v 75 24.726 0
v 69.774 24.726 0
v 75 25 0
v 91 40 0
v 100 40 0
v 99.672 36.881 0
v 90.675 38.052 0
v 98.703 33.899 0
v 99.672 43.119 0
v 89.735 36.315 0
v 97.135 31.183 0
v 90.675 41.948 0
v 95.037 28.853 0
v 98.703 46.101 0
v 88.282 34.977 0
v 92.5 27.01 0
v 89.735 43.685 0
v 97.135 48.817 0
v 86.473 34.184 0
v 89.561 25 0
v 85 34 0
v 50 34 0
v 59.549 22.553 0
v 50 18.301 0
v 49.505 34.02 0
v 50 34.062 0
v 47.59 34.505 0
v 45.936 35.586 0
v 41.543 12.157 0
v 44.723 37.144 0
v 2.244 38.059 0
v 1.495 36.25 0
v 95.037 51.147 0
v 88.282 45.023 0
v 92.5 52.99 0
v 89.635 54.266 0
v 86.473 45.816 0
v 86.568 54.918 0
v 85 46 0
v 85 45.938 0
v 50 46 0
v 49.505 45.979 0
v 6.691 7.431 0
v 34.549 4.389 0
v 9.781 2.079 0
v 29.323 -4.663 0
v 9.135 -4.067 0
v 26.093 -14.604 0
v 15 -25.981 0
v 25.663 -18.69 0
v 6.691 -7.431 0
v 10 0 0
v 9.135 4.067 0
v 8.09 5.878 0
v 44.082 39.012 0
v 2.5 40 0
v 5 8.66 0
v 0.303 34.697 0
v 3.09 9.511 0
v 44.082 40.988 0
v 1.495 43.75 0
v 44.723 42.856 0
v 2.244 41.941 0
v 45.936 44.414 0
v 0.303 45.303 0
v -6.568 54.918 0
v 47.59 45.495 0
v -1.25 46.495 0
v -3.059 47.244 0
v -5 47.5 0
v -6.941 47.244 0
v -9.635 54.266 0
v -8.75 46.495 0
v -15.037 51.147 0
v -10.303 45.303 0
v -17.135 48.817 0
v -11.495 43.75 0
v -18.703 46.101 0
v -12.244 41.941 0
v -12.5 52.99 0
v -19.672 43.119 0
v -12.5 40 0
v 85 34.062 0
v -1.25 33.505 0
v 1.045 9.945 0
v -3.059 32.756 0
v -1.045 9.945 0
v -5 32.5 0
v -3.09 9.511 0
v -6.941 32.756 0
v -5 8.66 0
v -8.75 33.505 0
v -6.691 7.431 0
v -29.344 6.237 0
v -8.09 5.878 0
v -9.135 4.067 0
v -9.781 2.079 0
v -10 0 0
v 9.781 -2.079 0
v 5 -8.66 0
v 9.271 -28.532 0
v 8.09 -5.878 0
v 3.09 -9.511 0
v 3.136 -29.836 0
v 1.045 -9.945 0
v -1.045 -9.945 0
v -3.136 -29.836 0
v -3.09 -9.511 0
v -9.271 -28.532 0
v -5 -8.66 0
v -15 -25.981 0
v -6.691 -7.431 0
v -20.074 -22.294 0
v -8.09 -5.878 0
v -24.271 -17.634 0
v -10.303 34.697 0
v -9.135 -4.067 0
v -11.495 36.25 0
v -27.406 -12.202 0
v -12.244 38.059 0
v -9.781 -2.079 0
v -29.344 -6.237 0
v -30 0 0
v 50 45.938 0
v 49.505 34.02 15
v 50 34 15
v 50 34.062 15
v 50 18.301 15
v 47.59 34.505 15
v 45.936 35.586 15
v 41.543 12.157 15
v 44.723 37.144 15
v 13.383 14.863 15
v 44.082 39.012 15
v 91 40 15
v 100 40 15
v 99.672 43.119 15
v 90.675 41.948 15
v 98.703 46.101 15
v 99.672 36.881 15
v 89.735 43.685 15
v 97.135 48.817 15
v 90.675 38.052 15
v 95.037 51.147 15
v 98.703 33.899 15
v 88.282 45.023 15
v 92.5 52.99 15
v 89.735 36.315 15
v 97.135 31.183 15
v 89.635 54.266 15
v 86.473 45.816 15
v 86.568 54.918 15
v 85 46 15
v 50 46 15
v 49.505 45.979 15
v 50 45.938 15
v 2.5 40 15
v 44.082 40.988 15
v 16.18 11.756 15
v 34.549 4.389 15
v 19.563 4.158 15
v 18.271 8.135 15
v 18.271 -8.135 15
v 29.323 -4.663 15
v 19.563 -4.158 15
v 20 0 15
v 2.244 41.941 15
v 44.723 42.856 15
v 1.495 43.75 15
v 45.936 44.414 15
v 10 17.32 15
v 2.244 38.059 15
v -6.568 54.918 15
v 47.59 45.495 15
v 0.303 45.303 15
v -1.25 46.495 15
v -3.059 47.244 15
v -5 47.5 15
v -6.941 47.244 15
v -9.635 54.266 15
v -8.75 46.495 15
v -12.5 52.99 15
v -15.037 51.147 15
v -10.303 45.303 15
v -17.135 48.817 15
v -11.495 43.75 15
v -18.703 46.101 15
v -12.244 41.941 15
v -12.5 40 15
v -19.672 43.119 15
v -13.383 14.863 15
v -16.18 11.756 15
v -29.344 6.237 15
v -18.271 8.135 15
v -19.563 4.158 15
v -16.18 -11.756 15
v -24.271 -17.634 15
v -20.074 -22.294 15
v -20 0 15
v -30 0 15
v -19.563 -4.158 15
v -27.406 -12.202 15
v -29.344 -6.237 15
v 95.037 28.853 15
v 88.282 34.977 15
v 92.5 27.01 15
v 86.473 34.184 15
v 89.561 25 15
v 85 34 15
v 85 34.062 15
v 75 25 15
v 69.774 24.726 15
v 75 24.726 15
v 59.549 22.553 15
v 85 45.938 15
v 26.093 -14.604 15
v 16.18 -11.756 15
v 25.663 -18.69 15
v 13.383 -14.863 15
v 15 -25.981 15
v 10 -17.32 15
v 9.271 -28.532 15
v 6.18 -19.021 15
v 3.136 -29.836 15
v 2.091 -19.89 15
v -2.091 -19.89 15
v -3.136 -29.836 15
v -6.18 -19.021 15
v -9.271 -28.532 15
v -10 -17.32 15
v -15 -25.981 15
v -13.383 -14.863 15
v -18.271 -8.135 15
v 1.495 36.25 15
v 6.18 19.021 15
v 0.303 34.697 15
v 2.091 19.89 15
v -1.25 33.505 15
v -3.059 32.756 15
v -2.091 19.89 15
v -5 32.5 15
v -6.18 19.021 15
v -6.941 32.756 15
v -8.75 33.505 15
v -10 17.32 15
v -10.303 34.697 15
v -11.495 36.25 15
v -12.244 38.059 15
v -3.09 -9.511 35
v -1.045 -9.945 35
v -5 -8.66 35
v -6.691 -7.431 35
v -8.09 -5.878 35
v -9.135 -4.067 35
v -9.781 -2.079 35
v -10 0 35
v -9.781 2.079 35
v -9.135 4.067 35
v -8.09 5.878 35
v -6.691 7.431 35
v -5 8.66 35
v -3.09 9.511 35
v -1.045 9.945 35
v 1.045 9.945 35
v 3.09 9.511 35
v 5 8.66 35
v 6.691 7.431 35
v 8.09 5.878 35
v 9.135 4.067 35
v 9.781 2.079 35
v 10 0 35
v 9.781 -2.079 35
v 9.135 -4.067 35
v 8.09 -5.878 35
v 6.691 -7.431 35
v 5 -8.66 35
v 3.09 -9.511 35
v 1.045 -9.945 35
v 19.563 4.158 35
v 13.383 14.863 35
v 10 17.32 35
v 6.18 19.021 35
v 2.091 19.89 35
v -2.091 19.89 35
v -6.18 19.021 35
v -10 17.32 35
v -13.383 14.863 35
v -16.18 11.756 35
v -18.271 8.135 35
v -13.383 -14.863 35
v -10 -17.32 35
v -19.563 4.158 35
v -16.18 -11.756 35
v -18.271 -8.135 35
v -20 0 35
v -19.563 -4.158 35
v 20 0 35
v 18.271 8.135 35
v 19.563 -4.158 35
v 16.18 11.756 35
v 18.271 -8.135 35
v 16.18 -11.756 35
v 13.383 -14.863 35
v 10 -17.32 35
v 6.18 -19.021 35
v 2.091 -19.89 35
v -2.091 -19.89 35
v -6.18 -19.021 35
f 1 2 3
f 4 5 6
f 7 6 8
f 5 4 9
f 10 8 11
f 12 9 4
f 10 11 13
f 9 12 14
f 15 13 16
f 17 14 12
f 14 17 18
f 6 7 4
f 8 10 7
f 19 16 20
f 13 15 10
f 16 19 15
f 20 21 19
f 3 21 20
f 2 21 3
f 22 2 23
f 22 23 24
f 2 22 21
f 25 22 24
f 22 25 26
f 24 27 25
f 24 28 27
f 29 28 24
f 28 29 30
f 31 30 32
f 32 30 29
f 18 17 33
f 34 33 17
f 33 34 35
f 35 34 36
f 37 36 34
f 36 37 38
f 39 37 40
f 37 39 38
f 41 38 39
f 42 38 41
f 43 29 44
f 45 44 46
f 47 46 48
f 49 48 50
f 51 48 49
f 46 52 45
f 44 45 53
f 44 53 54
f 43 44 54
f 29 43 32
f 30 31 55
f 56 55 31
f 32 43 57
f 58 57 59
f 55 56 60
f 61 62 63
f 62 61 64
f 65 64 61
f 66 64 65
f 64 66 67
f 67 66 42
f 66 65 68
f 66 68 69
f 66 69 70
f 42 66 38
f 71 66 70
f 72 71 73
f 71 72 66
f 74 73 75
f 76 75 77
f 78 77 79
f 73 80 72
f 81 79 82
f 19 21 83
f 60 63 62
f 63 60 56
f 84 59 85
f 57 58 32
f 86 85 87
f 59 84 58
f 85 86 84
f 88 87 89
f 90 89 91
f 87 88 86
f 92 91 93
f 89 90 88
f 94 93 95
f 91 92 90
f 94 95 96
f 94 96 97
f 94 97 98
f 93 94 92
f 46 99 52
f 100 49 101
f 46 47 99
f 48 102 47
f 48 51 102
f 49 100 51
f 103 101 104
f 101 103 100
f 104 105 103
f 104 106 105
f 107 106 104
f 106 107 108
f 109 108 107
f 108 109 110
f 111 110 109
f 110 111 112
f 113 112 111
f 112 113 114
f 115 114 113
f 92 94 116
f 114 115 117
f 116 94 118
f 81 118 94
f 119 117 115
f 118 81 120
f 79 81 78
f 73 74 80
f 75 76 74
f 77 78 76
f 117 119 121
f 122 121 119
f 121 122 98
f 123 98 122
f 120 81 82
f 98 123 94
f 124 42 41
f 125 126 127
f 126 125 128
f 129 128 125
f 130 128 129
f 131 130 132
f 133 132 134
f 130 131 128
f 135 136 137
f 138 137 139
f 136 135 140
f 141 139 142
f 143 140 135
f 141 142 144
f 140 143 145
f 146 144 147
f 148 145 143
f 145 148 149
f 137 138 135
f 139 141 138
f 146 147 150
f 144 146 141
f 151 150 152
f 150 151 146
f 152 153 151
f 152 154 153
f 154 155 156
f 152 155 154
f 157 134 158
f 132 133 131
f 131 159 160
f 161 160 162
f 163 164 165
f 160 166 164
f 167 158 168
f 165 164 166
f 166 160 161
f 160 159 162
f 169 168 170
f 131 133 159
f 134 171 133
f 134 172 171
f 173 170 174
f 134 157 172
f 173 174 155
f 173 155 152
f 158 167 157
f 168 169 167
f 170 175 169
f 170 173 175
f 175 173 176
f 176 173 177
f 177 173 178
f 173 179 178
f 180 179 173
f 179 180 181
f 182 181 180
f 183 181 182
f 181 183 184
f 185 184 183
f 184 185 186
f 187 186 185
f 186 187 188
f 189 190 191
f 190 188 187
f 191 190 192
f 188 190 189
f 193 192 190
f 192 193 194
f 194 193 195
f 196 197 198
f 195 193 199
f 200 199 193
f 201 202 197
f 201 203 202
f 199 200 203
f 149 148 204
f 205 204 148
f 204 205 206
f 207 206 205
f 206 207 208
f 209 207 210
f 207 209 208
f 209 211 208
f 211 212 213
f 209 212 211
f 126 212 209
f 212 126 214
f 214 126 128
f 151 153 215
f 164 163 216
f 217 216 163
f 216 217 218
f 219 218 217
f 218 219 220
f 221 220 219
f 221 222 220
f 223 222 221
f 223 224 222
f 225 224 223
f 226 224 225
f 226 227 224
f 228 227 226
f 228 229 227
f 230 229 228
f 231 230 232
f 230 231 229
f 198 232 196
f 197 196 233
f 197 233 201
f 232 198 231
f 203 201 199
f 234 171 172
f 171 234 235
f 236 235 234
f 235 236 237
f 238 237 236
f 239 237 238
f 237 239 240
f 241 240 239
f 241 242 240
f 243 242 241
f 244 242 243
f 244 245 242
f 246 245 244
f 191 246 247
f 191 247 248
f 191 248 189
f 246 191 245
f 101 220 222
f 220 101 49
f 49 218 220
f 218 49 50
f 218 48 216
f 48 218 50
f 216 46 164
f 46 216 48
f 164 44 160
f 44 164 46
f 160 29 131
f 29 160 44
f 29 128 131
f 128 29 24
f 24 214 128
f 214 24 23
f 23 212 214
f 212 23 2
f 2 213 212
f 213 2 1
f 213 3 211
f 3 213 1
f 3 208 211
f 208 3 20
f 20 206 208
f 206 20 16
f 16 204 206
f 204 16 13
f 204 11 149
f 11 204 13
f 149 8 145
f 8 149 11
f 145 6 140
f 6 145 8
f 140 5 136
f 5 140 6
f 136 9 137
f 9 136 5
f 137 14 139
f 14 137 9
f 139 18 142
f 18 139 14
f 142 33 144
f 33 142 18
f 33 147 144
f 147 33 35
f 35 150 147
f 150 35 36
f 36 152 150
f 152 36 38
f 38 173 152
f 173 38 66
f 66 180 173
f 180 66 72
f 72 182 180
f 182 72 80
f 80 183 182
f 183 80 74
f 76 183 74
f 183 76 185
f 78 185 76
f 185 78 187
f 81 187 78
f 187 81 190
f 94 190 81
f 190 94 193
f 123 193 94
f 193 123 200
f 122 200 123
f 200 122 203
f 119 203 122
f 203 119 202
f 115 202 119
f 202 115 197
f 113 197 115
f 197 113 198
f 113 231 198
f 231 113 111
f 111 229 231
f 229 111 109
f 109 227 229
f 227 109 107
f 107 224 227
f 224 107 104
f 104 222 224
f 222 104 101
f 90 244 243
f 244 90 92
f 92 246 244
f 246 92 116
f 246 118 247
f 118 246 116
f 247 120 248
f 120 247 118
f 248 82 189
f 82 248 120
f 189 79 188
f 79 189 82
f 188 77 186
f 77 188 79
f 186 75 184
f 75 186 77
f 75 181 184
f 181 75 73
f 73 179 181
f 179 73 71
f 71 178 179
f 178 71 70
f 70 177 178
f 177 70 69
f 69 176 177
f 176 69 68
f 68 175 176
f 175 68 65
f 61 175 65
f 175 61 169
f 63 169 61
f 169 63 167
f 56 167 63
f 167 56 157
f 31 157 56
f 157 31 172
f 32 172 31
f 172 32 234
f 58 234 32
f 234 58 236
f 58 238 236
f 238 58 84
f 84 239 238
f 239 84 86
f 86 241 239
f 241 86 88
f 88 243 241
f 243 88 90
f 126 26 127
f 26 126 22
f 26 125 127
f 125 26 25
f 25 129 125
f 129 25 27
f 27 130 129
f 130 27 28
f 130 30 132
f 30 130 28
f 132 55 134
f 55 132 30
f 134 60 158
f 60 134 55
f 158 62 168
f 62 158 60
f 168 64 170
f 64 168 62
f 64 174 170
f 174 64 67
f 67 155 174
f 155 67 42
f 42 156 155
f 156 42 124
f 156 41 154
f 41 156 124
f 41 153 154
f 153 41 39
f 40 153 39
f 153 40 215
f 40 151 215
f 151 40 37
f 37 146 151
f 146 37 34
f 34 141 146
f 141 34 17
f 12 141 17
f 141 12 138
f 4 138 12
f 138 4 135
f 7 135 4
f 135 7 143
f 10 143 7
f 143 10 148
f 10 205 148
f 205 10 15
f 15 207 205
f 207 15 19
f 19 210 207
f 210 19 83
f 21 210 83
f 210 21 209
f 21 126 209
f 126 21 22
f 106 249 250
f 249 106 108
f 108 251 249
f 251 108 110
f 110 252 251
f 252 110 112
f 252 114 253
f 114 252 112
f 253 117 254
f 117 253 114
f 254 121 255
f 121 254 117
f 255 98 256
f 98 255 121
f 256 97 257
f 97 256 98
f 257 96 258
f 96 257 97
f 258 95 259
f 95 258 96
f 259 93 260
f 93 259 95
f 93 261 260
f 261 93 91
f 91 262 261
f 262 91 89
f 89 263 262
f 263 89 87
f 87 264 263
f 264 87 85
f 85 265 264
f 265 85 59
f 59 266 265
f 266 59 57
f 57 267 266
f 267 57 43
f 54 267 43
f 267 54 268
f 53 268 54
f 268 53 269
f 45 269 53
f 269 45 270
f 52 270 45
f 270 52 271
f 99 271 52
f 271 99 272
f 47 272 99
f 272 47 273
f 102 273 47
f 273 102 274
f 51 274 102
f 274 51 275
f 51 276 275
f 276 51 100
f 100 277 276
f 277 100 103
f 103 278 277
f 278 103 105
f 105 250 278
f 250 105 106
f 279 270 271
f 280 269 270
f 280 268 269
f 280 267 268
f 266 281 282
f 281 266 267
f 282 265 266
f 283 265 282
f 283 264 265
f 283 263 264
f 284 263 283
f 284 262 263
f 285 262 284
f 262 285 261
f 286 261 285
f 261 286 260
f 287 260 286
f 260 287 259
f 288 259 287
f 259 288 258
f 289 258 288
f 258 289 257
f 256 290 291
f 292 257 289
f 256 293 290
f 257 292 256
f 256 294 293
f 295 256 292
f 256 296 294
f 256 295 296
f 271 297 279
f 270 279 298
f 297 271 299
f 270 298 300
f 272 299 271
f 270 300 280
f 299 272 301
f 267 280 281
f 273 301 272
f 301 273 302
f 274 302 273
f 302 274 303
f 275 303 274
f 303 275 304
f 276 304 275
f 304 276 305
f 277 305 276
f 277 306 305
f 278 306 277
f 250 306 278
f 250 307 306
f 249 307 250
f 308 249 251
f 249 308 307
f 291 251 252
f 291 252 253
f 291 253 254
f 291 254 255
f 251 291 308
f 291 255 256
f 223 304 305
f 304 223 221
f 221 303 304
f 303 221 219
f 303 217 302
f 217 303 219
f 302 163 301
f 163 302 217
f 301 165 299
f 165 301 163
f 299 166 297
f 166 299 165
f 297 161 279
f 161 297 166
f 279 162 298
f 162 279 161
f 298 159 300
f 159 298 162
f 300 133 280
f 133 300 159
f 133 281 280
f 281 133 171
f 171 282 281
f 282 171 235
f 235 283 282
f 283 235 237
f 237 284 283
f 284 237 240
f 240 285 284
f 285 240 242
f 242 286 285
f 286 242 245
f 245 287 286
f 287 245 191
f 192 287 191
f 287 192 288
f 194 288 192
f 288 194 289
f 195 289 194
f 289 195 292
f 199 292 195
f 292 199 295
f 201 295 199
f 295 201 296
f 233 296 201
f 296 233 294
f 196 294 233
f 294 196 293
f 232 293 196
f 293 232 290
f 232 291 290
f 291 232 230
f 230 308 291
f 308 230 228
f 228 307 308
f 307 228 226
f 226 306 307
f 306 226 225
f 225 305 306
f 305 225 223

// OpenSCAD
color("cyan")
linear_extrude(15) {
    difference() {
        hull() {
            circle(30);
            translate([-5,40]) circle(15);  
            translate([85,40]) circle(15);
        }
        translate([75,0]) square([50,25]);
        translate([85-10, 40-30/2-50]) circle(50);
        
        translate([-5,40]) circle(15/2);
        circle(10);
        
        union() {
            translate([50,40-12/2]) square([35,12]);
            translate([50,40]) circle(6);
            translate([85,40]) circle(6);
        }
    }
}

color("green")
linear_extrude(35) {
    difference() {
        circle(20);
        circle(10);
    }
}
